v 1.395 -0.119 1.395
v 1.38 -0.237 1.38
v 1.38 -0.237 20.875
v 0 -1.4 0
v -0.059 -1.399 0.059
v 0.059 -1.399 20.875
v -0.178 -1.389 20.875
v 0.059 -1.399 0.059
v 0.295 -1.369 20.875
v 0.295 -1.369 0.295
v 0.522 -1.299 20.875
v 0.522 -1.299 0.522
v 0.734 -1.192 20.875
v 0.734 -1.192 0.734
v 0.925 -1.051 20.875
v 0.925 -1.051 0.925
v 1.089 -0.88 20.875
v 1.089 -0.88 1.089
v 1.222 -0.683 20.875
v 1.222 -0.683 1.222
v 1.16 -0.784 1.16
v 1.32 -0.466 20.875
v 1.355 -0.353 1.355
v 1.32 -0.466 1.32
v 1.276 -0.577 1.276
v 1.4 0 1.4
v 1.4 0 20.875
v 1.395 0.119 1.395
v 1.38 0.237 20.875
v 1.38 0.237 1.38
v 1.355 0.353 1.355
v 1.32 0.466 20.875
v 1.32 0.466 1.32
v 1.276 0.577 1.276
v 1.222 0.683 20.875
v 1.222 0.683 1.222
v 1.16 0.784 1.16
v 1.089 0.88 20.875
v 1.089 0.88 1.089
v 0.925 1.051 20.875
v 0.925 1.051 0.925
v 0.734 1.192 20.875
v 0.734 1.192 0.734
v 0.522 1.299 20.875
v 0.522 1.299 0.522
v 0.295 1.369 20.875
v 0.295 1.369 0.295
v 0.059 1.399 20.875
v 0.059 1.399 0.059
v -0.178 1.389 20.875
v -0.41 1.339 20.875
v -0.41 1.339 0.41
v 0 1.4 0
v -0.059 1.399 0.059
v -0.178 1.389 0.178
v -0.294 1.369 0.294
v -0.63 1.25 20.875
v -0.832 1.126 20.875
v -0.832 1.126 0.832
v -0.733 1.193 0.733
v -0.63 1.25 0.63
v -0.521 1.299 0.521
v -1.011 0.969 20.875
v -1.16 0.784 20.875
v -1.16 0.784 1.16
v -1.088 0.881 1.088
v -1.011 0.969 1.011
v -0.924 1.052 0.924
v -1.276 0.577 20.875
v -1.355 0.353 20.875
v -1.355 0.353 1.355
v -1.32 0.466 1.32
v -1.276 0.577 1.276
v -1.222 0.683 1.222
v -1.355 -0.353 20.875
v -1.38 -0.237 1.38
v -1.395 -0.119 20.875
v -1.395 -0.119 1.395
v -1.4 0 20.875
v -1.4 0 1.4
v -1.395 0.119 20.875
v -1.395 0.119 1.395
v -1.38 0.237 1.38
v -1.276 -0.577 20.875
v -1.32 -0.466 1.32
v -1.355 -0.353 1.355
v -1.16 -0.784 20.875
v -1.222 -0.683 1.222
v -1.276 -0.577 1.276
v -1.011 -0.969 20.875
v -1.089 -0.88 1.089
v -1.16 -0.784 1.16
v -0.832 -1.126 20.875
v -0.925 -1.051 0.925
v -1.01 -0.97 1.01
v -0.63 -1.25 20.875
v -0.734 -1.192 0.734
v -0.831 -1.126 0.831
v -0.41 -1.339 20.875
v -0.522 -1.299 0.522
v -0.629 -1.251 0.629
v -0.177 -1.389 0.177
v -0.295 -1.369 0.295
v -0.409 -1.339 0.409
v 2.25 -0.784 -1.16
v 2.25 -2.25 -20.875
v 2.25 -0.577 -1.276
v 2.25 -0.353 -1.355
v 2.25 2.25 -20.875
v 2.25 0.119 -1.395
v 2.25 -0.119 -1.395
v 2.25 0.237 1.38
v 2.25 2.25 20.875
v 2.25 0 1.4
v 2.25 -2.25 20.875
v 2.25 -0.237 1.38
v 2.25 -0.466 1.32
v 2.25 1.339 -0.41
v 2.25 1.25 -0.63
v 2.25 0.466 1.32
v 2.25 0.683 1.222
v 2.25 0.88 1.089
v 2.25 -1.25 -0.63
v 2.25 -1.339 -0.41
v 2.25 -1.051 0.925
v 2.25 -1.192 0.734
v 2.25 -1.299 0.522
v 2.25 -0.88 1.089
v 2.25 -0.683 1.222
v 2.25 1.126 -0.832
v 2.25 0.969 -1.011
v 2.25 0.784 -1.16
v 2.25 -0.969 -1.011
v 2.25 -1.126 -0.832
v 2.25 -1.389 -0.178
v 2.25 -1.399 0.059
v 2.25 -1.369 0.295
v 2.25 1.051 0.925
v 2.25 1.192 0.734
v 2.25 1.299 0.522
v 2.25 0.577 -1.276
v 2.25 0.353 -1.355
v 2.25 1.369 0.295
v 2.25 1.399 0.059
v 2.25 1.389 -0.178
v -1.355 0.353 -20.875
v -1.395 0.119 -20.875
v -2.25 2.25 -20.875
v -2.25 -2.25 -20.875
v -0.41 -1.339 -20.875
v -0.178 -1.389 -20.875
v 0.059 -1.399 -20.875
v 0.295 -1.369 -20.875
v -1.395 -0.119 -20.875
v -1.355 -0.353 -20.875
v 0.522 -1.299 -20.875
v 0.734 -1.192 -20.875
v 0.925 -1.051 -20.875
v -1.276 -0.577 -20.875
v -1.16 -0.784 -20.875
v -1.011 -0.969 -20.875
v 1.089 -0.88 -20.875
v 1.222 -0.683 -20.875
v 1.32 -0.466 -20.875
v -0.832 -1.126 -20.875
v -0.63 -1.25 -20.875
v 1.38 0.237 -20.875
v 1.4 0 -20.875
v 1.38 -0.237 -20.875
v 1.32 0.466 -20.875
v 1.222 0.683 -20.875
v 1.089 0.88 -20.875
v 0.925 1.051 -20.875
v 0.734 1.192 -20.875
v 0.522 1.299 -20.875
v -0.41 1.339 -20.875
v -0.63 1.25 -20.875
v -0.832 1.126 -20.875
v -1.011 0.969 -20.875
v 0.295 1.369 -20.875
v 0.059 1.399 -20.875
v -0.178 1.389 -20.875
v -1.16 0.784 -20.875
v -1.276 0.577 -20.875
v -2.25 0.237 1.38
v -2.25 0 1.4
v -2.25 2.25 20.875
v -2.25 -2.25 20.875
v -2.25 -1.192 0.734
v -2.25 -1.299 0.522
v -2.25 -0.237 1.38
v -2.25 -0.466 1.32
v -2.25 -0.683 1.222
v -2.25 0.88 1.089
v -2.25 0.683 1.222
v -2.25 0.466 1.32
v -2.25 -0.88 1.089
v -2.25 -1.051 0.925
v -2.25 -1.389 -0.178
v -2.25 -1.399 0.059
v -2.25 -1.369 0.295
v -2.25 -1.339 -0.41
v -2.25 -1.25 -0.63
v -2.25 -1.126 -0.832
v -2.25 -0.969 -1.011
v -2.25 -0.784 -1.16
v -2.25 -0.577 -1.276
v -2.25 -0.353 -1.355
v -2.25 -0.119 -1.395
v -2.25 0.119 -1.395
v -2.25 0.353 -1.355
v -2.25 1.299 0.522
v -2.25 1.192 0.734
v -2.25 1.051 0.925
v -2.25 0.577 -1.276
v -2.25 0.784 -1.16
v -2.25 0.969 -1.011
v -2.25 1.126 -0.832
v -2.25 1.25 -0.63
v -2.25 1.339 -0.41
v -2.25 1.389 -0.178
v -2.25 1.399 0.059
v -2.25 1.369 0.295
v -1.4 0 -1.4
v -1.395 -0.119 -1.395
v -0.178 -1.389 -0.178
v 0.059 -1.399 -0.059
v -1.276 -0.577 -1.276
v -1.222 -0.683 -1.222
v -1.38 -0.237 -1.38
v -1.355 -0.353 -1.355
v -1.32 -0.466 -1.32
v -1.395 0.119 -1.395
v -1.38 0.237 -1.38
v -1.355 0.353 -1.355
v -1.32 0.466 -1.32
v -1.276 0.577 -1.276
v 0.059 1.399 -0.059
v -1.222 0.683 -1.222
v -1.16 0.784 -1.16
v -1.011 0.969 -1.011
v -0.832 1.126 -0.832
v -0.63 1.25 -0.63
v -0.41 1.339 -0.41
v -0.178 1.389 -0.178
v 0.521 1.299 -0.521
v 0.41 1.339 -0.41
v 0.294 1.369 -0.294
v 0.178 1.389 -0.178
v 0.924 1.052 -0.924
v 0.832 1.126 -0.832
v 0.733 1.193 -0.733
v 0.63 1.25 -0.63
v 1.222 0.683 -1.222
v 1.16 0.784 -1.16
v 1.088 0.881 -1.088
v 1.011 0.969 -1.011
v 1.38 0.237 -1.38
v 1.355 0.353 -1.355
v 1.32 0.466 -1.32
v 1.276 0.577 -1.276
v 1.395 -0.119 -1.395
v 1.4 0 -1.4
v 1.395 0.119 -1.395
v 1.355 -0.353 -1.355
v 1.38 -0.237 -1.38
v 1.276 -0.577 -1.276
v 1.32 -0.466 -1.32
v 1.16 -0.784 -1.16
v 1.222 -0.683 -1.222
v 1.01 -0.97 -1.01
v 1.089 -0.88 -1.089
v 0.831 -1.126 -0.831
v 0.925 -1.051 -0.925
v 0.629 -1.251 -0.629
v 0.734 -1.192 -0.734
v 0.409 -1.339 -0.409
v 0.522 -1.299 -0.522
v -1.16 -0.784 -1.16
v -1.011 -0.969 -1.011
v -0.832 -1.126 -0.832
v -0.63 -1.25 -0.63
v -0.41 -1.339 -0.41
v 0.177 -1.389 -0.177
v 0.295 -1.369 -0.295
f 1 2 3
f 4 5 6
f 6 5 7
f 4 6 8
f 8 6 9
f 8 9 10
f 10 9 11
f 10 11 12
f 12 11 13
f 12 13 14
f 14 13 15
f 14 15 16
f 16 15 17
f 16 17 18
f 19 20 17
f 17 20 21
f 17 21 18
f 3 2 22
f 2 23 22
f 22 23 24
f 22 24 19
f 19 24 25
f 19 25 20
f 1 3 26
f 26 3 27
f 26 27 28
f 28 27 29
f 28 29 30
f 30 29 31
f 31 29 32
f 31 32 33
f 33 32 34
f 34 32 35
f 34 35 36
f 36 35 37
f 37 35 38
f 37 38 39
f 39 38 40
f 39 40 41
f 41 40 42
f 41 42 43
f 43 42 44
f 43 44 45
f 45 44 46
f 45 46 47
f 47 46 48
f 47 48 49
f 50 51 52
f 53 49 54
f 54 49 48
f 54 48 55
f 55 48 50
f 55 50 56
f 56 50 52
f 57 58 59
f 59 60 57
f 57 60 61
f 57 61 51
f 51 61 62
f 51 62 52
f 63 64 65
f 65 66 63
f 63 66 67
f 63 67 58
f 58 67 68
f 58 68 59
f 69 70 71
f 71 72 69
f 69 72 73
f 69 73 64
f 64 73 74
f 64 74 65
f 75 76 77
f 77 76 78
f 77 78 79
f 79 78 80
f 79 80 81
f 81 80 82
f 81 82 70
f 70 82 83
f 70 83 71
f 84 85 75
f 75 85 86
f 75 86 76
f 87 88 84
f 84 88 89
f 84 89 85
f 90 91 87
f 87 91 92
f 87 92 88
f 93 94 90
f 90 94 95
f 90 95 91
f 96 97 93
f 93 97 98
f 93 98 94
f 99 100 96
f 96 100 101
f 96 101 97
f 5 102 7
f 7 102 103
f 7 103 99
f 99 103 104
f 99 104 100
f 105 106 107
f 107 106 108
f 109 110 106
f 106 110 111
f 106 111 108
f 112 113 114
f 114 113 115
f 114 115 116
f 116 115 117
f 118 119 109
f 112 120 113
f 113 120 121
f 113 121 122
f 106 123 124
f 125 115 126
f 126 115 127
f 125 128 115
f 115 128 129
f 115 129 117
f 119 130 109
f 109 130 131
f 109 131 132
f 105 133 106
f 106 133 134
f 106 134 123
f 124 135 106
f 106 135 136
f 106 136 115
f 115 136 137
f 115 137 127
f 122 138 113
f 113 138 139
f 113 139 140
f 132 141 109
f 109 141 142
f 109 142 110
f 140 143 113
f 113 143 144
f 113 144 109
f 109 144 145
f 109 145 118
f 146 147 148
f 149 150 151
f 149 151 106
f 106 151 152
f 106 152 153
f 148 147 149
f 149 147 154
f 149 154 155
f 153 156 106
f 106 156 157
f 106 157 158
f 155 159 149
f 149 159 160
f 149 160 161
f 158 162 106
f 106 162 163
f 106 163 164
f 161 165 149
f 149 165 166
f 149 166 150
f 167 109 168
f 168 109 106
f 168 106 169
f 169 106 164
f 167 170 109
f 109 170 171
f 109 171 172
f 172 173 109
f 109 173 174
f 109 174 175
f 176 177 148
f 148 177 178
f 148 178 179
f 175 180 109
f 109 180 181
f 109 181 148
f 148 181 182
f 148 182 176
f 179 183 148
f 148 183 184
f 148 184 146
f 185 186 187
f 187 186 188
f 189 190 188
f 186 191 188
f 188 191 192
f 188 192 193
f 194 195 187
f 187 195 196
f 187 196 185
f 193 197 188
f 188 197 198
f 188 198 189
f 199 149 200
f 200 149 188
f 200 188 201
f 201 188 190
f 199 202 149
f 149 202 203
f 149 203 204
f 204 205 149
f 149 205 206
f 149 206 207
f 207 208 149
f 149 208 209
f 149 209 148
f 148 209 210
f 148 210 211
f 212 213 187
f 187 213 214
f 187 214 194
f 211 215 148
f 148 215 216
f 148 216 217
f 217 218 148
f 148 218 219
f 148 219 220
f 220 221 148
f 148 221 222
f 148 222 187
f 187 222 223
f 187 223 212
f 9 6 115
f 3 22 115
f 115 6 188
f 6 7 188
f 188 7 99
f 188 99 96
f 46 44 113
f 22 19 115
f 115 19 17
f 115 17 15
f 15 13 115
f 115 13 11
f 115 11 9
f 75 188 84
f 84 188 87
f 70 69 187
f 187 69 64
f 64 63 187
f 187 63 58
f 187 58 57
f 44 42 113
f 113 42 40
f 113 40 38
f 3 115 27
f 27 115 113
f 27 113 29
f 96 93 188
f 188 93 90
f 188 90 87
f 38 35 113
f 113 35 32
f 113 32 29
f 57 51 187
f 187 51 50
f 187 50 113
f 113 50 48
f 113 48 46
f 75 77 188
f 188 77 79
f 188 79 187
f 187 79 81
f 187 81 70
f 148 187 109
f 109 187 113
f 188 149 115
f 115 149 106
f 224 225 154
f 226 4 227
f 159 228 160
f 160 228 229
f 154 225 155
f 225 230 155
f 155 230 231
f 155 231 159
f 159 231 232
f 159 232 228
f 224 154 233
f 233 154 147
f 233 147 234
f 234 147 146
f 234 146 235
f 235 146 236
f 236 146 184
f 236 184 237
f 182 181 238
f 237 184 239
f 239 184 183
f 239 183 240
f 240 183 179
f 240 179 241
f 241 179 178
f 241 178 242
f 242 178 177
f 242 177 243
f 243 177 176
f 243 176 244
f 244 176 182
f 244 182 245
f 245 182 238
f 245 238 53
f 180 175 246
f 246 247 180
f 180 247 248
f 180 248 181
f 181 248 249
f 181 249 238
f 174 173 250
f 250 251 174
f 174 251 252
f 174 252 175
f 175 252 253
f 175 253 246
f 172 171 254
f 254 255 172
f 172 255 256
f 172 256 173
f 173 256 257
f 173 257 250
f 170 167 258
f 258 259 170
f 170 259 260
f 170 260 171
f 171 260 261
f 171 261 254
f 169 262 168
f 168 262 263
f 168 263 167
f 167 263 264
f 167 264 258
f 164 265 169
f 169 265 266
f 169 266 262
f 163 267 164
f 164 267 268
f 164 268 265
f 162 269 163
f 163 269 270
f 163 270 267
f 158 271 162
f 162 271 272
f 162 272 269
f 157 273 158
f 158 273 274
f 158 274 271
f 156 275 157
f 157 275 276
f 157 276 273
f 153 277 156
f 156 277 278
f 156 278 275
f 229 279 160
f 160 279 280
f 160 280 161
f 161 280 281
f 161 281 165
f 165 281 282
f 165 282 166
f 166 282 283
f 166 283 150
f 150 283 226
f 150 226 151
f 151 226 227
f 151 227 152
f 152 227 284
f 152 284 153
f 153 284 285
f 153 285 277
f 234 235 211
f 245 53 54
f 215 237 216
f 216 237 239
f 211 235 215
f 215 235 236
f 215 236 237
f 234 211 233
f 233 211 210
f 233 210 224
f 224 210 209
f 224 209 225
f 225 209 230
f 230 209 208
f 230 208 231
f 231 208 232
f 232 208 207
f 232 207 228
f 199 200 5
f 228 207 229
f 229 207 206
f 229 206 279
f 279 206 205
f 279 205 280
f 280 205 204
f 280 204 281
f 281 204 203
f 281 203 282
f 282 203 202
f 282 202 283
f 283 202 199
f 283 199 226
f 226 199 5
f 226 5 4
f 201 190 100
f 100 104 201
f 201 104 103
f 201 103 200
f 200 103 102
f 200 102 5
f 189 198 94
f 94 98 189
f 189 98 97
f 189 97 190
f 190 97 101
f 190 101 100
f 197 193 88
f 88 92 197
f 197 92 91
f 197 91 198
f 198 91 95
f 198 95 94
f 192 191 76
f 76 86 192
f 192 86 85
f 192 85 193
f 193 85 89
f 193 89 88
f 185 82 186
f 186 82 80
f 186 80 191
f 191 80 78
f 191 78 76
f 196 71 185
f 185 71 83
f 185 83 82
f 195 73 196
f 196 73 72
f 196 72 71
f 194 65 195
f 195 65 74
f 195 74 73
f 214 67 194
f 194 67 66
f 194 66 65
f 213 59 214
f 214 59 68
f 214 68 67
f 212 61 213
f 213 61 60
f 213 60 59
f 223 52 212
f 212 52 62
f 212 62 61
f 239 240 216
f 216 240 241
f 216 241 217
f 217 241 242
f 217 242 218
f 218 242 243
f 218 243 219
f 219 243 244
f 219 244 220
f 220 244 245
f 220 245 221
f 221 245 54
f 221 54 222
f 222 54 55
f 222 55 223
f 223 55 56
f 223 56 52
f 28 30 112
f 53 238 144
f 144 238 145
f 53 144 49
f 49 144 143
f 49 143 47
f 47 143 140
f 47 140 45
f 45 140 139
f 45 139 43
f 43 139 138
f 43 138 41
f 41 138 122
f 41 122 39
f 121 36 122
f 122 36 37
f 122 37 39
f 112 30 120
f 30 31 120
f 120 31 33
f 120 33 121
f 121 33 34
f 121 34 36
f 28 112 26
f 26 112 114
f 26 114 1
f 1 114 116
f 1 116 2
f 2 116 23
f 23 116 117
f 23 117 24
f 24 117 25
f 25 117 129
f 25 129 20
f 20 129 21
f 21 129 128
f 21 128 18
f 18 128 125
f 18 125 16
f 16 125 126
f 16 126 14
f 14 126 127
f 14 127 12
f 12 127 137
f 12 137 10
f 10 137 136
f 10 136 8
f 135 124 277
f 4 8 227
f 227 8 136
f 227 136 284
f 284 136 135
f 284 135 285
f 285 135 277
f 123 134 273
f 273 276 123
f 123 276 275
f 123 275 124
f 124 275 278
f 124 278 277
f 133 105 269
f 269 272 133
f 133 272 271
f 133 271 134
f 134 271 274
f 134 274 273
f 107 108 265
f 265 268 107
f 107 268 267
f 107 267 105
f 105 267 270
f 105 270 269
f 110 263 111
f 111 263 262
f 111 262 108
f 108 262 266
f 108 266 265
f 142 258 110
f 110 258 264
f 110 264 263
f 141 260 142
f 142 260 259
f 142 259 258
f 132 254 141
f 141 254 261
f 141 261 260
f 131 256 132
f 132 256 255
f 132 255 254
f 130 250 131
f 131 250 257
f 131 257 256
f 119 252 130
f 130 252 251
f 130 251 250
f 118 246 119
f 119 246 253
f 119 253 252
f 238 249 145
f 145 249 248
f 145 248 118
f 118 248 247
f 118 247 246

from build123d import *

# Parameters (mm, degrees)
ESBO_O1_W                  = 4.5
ESBO_O1_H                  = 41.75
RESSALTO_EXTRUS_O1_DEPTH   = 2.25
ESBO_O2_R                  = 1.4
CORTE_EXTRUS_O1_DEPTH      = 1
CORTE_EXTRUS_O1_DEPTH_BACK = 42.75
ESBO_O3_R                  = 1.4
CORTE_EXTRUS_O2_DEPTH      = 1
CORTE_EXTRUS_O2_DEPTH_BACK = 5.5


with BuildPart() as part:
    # Esboço1 → Ressalto-extrusão1 (new body, symmetric)
    with BuildSketch(Plane(origin=(0, 0, 0), x_dir=(1, 0, 0), z_dir=(0, 1, 0))):
        Rectangle(ESBO_O1_W, ESBO_O1_H)
    extrude(amount=RESSALTO_EXTRUS_O1_DEPTH, both=True)

    # Esboço2 → Corte-extrusão1 (cut, two sides)
    with BuildSketch(Plane.XY.offset(20.875)) as corte_extrus_o1_sk:
        Circle(ESBO_O2_R)
    extrude(amount=CORTE_EXTRUS_O1_DEPTH, mode=Mode.SUBTRACT)
    extrude(corte_extrus_o1_sk.sketch, amount=-CORTE_EXTRUS_O1_DEPTH_BACK, mode=Mode.SUBTRACT)

    # Esboço3 → Corte-extrusão2 (cut, two sides)
    with BuildSketch(Plane(origin=(-2.25, 0, 0), x_dir=(0, -1, 0), z_dir=(-1, 0, 0))) as corte_extrus_o2_sk:
        Circle(ESBO_O3_R)
    extrude(amount=CORTE_EXTRUS_O2_DEPTH, mode=Mode.SUBTRACT)
    extrude(corte_extrus_o2_sk.sketch, amount=-CORTE_EXTRUS_O2_DEPTH_BACK, mode=Mode.SUBTRACT)


solid = part.part
